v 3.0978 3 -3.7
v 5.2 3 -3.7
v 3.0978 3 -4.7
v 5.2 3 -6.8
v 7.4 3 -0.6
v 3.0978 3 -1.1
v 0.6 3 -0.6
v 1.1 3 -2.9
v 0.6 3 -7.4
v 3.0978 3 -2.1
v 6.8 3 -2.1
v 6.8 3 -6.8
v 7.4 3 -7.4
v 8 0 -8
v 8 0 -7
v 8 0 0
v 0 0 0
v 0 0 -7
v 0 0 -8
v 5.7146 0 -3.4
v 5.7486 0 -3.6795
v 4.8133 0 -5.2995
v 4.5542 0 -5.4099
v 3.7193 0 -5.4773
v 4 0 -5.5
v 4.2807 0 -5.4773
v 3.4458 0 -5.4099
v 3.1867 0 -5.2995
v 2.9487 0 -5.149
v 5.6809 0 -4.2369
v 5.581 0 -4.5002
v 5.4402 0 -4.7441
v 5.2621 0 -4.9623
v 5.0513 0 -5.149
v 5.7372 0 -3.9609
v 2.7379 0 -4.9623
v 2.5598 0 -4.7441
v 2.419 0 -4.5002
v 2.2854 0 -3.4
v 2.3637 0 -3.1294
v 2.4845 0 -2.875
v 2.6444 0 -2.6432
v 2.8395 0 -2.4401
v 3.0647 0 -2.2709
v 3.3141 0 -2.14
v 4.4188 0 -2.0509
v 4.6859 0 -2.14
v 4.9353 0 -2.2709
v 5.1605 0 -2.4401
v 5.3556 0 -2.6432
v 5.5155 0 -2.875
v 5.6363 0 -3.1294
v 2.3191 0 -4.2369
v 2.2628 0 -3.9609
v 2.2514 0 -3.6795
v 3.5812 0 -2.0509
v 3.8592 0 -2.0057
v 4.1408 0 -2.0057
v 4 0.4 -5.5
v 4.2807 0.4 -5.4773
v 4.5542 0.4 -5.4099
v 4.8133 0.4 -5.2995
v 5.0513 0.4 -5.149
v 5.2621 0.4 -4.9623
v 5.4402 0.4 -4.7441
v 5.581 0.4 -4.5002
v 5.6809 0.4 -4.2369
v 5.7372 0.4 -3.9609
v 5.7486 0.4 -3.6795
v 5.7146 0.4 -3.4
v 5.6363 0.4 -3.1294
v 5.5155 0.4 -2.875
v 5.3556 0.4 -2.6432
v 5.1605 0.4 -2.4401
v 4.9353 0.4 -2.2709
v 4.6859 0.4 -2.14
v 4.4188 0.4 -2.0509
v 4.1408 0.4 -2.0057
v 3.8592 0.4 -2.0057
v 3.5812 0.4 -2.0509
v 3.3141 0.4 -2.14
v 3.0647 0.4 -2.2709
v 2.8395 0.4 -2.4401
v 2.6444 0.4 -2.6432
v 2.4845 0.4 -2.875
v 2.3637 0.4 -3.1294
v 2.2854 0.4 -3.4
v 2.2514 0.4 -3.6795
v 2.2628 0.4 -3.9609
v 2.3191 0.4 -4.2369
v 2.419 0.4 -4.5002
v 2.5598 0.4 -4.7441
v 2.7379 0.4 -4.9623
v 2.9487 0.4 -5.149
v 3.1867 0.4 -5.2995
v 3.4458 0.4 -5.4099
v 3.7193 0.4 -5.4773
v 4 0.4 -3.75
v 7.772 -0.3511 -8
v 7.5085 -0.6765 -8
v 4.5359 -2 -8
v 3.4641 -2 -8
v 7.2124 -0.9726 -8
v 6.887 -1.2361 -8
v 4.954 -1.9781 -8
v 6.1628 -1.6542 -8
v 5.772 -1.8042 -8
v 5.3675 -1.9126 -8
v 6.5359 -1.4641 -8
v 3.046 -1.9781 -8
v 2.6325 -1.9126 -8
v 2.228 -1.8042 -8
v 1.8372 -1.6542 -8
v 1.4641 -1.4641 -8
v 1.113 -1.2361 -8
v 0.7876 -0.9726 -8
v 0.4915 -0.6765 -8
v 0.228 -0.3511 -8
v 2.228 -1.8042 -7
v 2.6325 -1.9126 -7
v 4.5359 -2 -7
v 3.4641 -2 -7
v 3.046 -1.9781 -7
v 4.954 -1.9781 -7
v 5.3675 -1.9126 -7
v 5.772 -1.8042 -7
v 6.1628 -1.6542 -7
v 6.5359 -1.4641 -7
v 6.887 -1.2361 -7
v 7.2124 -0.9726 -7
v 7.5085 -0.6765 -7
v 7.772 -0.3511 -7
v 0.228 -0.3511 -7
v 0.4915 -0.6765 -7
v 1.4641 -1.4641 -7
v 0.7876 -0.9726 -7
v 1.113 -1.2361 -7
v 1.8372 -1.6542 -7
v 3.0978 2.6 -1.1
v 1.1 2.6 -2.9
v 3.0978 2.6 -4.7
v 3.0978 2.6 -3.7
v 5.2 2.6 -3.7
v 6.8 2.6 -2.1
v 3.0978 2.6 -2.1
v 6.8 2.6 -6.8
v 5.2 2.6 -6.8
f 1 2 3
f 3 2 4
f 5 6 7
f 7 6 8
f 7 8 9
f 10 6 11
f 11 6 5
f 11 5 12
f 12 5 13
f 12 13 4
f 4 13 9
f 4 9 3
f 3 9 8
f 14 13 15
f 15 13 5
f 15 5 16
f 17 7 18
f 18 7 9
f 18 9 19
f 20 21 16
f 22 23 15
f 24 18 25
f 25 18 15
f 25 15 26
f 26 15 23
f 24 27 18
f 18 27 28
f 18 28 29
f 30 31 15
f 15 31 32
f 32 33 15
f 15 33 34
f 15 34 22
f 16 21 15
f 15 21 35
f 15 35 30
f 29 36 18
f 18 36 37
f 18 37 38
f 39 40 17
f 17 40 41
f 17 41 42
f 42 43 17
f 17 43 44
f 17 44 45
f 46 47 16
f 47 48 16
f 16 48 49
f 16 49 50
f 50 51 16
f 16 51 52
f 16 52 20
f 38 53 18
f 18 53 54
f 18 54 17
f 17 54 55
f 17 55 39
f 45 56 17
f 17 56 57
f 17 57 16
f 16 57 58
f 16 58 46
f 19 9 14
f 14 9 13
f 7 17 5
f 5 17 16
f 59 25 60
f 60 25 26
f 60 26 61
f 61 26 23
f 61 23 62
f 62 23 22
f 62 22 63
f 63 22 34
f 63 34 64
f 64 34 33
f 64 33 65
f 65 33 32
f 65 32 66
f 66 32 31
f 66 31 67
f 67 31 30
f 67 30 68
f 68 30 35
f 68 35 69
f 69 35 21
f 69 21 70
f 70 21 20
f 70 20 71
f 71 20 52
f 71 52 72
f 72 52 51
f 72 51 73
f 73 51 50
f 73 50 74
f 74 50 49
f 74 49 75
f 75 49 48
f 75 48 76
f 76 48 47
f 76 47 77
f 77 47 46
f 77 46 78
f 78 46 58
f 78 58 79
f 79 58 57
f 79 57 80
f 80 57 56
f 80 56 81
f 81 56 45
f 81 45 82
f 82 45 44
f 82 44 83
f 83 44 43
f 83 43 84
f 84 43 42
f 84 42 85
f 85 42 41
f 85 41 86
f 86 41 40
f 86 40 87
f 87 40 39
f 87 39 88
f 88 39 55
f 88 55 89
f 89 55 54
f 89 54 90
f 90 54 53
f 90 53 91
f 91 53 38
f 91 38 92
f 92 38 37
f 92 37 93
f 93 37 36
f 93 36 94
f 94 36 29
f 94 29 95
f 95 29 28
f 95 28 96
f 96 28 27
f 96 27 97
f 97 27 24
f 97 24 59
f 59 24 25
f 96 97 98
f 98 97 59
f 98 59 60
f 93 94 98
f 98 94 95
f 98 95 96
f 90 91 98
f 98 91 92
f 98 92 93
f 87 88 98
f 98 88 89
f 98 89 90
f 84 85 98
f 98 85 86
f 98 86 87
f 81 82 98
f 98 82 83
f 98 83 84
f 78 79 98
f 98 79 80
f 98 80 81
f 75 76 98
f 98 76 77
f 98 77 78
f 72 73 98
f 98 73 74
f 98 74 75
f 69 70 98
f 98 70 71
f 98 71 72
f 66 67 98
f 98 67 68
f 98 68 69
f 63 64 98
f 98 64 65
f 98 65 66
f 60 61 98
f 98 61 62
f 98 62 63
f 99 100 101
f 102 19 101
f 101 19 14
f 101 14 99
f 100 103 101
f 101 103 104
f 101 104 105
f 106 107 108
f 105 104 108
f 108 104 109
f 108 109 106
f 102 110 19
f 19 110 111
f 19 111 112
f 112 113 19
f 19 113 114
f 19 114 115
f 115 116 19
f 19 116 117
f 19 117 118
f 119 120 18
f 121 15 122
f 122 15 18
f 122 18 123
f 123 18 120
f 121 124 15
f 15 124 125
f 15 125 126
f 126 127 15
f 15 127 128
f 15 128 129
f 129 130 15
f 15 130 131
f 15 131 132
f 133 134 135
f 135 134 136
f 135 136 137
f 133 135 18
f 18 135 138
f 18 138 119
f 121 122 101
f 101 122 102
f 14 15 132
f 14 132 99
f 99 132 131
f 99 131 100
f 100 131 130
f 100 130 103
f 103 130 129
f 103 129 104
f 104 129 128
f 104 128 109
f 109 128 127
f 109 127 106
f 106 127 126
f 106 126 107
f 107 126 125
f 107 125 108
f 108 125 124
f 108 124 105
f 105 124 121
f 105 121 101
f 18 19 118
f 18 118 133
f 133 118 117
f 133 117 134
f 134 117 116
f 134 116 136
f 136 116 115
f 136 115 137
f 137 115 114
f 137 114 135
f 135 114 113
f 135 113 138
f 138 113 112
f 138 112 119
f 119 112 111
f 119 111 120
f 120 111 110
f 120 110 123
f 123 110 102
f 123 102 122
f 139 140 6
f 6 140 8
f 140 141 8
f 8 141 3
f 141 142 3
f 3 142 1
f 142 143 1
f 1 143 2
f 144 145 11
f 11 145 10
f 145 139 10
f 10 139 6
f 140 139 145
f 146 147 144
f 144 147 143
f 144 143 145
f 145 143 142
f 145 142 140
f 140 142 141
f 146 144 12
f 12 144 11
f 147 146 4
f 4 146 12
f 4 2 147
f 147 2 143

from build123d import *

# Parameters (mm, degrees)
SKETCH1_W               = 8
SKETCH1_H               = 8
BOSS_EXTRUDE1_DEPTH     = 3
CUT_EXTRUDE1_DEPTH      = 12.704699911
CUT_EXTRUDE1_DEPTH_BACK = 12.704699911
CUT_EXTRUDE2_DEPTH      = 11
SKETCH4_R               = 1.75
CUT_EXTRUDE3_DEPTH      = 0.4
SKETCH5_W               = 8
SKETCH5_H               = 1
BOSS_EXTRUDE2_DEPTH     = 2
FILLET1_R               = 4
SKETCH6_W               = 2.10217216
SKETCH6_H               = 1.6
CUT_EXTRUDE4_DEPTH      = 0.4


with BuildPart() as part:
    # Sketch1 → Boss-Extrude1 (new body)
    with BuildSketch(Plane(origin=(0, 0, 0), x_dir=(1, 0, 0), z_dir=(0, 1, 0))):
        with Locations((4, 4)):
            Rectangle(SKETCH1_W, SKETCH1_H)
    extrude(amount=BOSS_EXTRUDE1_DEPTH)

    # Sketch2 → Cut-Extrude1 (cut, two sides: drawn at the far end of the back side and taken through both)
    with BuildSketch(Plane.XY.offset(-CUT_EXTRUDE1_DEPTH_BACK)):
        Polygon((0, 0), (0.6, 3), (0, 3), align=None)
        Polygon((8, 0), (7.4, 3), (8, 3), align=None)
    extrude(amount=CUT_EXTRUDE1_DEPTH + CUT_EXTRUDE1_DEPTH_BACK, mode=Mode.SUBTRACT)

    # Sketch3 → Cut-Extrude2 (cut)
    with BuildSketch(Plane(origin=(0, 0, 0), x_dir=(0, 0, -1), z_dir=(1, 0, 0))):
        Polygon((0, 0), (0.6, 3), (0, 3), align=None)
        Polygon((8, 3), (7.4, 3), (8, 0), align=None)
    extrude(amount=CUT_EXTRUDE2_DEPTH, mode=Mode.SUBTRACT)

    # Sketch4 → Cut-Extrude3 (cut)
    with BuildSketch(Plane.XZ):
        with Locations(Location((4, -3.75, 0), (0, 0, 270))):
            Circle(SKETCH4_R)
    extrude(amount=-CUT_EXTRUDE3_DEPTH, mode=Mode.SUBTRACT)

    # Sketch5 → Boss-Extrude2 (add)
    with BuildSketch(Plane.XZ):
        with Locations((4, -7.5)):
            Rectangle(SKETCH5_W, SKETCH5_H)
    extrude(amount=BOSS_EXTRUDE2_DEPTH)

    # Fillet1
    # the kernel refuses this fillet: 4 mm, written as the material it takes off along each edge
    with BuildSketch(Plane(origin=(8, -2, -16.660254038), x_dir=(0, 1, 0), z_dir=(0, 0, 1)), Plane(origin=(0, -2, 1.660254038), x_dir=(0, 1, 0), z_dir=(0, 0, -1))) as fillet1_piece_1:
        with BuildLine():
            CenterArc((4, 3.464101615), FILLET1_R, 180, 60)
            Line((0, 3.464101615), (-0.08, 3.464101615))
            Line((-0.08, 3.464101615), (-0.08, 0))
            Line((-0.08, 0), (0, -0.08))
            ThreePointArc((0, -0.08), (1, -0.08), (1.96, -0.069282032))
            Line((1.96, -0.069282032), (2, 0))
        make_face()
    extrude(amount=18.320508076, mode=Mode.SUBTRACT)

    # Sketch6 → Cut-Extrude4 (cut)
    with BuildSketch(Plane(origin=(0, 3, 0), x_dir=(1, 0, 0), z_dir=(0, 1, 0))):
        Polygon((3.09782784, 2.1), (3.09782784, 3.7), (3.09782784, 4.7), (1.1, 2.9), (3.09782784, 1.1), align=None)
        with Locations((4.14891392, 2.9)):
            Rectangle(SKETCH6_W, SKETCH6_H)
        Polygon((5.2, 6.8), (5.2, 3.7), (5.2, 2.1), (6.8, 2.1), (6.8, 6.8), align=None)
    extrude(amount=-CUT_EXTRUDE4_DEPTH, mode=Mode.SUBTRACT)


solid = part.part
